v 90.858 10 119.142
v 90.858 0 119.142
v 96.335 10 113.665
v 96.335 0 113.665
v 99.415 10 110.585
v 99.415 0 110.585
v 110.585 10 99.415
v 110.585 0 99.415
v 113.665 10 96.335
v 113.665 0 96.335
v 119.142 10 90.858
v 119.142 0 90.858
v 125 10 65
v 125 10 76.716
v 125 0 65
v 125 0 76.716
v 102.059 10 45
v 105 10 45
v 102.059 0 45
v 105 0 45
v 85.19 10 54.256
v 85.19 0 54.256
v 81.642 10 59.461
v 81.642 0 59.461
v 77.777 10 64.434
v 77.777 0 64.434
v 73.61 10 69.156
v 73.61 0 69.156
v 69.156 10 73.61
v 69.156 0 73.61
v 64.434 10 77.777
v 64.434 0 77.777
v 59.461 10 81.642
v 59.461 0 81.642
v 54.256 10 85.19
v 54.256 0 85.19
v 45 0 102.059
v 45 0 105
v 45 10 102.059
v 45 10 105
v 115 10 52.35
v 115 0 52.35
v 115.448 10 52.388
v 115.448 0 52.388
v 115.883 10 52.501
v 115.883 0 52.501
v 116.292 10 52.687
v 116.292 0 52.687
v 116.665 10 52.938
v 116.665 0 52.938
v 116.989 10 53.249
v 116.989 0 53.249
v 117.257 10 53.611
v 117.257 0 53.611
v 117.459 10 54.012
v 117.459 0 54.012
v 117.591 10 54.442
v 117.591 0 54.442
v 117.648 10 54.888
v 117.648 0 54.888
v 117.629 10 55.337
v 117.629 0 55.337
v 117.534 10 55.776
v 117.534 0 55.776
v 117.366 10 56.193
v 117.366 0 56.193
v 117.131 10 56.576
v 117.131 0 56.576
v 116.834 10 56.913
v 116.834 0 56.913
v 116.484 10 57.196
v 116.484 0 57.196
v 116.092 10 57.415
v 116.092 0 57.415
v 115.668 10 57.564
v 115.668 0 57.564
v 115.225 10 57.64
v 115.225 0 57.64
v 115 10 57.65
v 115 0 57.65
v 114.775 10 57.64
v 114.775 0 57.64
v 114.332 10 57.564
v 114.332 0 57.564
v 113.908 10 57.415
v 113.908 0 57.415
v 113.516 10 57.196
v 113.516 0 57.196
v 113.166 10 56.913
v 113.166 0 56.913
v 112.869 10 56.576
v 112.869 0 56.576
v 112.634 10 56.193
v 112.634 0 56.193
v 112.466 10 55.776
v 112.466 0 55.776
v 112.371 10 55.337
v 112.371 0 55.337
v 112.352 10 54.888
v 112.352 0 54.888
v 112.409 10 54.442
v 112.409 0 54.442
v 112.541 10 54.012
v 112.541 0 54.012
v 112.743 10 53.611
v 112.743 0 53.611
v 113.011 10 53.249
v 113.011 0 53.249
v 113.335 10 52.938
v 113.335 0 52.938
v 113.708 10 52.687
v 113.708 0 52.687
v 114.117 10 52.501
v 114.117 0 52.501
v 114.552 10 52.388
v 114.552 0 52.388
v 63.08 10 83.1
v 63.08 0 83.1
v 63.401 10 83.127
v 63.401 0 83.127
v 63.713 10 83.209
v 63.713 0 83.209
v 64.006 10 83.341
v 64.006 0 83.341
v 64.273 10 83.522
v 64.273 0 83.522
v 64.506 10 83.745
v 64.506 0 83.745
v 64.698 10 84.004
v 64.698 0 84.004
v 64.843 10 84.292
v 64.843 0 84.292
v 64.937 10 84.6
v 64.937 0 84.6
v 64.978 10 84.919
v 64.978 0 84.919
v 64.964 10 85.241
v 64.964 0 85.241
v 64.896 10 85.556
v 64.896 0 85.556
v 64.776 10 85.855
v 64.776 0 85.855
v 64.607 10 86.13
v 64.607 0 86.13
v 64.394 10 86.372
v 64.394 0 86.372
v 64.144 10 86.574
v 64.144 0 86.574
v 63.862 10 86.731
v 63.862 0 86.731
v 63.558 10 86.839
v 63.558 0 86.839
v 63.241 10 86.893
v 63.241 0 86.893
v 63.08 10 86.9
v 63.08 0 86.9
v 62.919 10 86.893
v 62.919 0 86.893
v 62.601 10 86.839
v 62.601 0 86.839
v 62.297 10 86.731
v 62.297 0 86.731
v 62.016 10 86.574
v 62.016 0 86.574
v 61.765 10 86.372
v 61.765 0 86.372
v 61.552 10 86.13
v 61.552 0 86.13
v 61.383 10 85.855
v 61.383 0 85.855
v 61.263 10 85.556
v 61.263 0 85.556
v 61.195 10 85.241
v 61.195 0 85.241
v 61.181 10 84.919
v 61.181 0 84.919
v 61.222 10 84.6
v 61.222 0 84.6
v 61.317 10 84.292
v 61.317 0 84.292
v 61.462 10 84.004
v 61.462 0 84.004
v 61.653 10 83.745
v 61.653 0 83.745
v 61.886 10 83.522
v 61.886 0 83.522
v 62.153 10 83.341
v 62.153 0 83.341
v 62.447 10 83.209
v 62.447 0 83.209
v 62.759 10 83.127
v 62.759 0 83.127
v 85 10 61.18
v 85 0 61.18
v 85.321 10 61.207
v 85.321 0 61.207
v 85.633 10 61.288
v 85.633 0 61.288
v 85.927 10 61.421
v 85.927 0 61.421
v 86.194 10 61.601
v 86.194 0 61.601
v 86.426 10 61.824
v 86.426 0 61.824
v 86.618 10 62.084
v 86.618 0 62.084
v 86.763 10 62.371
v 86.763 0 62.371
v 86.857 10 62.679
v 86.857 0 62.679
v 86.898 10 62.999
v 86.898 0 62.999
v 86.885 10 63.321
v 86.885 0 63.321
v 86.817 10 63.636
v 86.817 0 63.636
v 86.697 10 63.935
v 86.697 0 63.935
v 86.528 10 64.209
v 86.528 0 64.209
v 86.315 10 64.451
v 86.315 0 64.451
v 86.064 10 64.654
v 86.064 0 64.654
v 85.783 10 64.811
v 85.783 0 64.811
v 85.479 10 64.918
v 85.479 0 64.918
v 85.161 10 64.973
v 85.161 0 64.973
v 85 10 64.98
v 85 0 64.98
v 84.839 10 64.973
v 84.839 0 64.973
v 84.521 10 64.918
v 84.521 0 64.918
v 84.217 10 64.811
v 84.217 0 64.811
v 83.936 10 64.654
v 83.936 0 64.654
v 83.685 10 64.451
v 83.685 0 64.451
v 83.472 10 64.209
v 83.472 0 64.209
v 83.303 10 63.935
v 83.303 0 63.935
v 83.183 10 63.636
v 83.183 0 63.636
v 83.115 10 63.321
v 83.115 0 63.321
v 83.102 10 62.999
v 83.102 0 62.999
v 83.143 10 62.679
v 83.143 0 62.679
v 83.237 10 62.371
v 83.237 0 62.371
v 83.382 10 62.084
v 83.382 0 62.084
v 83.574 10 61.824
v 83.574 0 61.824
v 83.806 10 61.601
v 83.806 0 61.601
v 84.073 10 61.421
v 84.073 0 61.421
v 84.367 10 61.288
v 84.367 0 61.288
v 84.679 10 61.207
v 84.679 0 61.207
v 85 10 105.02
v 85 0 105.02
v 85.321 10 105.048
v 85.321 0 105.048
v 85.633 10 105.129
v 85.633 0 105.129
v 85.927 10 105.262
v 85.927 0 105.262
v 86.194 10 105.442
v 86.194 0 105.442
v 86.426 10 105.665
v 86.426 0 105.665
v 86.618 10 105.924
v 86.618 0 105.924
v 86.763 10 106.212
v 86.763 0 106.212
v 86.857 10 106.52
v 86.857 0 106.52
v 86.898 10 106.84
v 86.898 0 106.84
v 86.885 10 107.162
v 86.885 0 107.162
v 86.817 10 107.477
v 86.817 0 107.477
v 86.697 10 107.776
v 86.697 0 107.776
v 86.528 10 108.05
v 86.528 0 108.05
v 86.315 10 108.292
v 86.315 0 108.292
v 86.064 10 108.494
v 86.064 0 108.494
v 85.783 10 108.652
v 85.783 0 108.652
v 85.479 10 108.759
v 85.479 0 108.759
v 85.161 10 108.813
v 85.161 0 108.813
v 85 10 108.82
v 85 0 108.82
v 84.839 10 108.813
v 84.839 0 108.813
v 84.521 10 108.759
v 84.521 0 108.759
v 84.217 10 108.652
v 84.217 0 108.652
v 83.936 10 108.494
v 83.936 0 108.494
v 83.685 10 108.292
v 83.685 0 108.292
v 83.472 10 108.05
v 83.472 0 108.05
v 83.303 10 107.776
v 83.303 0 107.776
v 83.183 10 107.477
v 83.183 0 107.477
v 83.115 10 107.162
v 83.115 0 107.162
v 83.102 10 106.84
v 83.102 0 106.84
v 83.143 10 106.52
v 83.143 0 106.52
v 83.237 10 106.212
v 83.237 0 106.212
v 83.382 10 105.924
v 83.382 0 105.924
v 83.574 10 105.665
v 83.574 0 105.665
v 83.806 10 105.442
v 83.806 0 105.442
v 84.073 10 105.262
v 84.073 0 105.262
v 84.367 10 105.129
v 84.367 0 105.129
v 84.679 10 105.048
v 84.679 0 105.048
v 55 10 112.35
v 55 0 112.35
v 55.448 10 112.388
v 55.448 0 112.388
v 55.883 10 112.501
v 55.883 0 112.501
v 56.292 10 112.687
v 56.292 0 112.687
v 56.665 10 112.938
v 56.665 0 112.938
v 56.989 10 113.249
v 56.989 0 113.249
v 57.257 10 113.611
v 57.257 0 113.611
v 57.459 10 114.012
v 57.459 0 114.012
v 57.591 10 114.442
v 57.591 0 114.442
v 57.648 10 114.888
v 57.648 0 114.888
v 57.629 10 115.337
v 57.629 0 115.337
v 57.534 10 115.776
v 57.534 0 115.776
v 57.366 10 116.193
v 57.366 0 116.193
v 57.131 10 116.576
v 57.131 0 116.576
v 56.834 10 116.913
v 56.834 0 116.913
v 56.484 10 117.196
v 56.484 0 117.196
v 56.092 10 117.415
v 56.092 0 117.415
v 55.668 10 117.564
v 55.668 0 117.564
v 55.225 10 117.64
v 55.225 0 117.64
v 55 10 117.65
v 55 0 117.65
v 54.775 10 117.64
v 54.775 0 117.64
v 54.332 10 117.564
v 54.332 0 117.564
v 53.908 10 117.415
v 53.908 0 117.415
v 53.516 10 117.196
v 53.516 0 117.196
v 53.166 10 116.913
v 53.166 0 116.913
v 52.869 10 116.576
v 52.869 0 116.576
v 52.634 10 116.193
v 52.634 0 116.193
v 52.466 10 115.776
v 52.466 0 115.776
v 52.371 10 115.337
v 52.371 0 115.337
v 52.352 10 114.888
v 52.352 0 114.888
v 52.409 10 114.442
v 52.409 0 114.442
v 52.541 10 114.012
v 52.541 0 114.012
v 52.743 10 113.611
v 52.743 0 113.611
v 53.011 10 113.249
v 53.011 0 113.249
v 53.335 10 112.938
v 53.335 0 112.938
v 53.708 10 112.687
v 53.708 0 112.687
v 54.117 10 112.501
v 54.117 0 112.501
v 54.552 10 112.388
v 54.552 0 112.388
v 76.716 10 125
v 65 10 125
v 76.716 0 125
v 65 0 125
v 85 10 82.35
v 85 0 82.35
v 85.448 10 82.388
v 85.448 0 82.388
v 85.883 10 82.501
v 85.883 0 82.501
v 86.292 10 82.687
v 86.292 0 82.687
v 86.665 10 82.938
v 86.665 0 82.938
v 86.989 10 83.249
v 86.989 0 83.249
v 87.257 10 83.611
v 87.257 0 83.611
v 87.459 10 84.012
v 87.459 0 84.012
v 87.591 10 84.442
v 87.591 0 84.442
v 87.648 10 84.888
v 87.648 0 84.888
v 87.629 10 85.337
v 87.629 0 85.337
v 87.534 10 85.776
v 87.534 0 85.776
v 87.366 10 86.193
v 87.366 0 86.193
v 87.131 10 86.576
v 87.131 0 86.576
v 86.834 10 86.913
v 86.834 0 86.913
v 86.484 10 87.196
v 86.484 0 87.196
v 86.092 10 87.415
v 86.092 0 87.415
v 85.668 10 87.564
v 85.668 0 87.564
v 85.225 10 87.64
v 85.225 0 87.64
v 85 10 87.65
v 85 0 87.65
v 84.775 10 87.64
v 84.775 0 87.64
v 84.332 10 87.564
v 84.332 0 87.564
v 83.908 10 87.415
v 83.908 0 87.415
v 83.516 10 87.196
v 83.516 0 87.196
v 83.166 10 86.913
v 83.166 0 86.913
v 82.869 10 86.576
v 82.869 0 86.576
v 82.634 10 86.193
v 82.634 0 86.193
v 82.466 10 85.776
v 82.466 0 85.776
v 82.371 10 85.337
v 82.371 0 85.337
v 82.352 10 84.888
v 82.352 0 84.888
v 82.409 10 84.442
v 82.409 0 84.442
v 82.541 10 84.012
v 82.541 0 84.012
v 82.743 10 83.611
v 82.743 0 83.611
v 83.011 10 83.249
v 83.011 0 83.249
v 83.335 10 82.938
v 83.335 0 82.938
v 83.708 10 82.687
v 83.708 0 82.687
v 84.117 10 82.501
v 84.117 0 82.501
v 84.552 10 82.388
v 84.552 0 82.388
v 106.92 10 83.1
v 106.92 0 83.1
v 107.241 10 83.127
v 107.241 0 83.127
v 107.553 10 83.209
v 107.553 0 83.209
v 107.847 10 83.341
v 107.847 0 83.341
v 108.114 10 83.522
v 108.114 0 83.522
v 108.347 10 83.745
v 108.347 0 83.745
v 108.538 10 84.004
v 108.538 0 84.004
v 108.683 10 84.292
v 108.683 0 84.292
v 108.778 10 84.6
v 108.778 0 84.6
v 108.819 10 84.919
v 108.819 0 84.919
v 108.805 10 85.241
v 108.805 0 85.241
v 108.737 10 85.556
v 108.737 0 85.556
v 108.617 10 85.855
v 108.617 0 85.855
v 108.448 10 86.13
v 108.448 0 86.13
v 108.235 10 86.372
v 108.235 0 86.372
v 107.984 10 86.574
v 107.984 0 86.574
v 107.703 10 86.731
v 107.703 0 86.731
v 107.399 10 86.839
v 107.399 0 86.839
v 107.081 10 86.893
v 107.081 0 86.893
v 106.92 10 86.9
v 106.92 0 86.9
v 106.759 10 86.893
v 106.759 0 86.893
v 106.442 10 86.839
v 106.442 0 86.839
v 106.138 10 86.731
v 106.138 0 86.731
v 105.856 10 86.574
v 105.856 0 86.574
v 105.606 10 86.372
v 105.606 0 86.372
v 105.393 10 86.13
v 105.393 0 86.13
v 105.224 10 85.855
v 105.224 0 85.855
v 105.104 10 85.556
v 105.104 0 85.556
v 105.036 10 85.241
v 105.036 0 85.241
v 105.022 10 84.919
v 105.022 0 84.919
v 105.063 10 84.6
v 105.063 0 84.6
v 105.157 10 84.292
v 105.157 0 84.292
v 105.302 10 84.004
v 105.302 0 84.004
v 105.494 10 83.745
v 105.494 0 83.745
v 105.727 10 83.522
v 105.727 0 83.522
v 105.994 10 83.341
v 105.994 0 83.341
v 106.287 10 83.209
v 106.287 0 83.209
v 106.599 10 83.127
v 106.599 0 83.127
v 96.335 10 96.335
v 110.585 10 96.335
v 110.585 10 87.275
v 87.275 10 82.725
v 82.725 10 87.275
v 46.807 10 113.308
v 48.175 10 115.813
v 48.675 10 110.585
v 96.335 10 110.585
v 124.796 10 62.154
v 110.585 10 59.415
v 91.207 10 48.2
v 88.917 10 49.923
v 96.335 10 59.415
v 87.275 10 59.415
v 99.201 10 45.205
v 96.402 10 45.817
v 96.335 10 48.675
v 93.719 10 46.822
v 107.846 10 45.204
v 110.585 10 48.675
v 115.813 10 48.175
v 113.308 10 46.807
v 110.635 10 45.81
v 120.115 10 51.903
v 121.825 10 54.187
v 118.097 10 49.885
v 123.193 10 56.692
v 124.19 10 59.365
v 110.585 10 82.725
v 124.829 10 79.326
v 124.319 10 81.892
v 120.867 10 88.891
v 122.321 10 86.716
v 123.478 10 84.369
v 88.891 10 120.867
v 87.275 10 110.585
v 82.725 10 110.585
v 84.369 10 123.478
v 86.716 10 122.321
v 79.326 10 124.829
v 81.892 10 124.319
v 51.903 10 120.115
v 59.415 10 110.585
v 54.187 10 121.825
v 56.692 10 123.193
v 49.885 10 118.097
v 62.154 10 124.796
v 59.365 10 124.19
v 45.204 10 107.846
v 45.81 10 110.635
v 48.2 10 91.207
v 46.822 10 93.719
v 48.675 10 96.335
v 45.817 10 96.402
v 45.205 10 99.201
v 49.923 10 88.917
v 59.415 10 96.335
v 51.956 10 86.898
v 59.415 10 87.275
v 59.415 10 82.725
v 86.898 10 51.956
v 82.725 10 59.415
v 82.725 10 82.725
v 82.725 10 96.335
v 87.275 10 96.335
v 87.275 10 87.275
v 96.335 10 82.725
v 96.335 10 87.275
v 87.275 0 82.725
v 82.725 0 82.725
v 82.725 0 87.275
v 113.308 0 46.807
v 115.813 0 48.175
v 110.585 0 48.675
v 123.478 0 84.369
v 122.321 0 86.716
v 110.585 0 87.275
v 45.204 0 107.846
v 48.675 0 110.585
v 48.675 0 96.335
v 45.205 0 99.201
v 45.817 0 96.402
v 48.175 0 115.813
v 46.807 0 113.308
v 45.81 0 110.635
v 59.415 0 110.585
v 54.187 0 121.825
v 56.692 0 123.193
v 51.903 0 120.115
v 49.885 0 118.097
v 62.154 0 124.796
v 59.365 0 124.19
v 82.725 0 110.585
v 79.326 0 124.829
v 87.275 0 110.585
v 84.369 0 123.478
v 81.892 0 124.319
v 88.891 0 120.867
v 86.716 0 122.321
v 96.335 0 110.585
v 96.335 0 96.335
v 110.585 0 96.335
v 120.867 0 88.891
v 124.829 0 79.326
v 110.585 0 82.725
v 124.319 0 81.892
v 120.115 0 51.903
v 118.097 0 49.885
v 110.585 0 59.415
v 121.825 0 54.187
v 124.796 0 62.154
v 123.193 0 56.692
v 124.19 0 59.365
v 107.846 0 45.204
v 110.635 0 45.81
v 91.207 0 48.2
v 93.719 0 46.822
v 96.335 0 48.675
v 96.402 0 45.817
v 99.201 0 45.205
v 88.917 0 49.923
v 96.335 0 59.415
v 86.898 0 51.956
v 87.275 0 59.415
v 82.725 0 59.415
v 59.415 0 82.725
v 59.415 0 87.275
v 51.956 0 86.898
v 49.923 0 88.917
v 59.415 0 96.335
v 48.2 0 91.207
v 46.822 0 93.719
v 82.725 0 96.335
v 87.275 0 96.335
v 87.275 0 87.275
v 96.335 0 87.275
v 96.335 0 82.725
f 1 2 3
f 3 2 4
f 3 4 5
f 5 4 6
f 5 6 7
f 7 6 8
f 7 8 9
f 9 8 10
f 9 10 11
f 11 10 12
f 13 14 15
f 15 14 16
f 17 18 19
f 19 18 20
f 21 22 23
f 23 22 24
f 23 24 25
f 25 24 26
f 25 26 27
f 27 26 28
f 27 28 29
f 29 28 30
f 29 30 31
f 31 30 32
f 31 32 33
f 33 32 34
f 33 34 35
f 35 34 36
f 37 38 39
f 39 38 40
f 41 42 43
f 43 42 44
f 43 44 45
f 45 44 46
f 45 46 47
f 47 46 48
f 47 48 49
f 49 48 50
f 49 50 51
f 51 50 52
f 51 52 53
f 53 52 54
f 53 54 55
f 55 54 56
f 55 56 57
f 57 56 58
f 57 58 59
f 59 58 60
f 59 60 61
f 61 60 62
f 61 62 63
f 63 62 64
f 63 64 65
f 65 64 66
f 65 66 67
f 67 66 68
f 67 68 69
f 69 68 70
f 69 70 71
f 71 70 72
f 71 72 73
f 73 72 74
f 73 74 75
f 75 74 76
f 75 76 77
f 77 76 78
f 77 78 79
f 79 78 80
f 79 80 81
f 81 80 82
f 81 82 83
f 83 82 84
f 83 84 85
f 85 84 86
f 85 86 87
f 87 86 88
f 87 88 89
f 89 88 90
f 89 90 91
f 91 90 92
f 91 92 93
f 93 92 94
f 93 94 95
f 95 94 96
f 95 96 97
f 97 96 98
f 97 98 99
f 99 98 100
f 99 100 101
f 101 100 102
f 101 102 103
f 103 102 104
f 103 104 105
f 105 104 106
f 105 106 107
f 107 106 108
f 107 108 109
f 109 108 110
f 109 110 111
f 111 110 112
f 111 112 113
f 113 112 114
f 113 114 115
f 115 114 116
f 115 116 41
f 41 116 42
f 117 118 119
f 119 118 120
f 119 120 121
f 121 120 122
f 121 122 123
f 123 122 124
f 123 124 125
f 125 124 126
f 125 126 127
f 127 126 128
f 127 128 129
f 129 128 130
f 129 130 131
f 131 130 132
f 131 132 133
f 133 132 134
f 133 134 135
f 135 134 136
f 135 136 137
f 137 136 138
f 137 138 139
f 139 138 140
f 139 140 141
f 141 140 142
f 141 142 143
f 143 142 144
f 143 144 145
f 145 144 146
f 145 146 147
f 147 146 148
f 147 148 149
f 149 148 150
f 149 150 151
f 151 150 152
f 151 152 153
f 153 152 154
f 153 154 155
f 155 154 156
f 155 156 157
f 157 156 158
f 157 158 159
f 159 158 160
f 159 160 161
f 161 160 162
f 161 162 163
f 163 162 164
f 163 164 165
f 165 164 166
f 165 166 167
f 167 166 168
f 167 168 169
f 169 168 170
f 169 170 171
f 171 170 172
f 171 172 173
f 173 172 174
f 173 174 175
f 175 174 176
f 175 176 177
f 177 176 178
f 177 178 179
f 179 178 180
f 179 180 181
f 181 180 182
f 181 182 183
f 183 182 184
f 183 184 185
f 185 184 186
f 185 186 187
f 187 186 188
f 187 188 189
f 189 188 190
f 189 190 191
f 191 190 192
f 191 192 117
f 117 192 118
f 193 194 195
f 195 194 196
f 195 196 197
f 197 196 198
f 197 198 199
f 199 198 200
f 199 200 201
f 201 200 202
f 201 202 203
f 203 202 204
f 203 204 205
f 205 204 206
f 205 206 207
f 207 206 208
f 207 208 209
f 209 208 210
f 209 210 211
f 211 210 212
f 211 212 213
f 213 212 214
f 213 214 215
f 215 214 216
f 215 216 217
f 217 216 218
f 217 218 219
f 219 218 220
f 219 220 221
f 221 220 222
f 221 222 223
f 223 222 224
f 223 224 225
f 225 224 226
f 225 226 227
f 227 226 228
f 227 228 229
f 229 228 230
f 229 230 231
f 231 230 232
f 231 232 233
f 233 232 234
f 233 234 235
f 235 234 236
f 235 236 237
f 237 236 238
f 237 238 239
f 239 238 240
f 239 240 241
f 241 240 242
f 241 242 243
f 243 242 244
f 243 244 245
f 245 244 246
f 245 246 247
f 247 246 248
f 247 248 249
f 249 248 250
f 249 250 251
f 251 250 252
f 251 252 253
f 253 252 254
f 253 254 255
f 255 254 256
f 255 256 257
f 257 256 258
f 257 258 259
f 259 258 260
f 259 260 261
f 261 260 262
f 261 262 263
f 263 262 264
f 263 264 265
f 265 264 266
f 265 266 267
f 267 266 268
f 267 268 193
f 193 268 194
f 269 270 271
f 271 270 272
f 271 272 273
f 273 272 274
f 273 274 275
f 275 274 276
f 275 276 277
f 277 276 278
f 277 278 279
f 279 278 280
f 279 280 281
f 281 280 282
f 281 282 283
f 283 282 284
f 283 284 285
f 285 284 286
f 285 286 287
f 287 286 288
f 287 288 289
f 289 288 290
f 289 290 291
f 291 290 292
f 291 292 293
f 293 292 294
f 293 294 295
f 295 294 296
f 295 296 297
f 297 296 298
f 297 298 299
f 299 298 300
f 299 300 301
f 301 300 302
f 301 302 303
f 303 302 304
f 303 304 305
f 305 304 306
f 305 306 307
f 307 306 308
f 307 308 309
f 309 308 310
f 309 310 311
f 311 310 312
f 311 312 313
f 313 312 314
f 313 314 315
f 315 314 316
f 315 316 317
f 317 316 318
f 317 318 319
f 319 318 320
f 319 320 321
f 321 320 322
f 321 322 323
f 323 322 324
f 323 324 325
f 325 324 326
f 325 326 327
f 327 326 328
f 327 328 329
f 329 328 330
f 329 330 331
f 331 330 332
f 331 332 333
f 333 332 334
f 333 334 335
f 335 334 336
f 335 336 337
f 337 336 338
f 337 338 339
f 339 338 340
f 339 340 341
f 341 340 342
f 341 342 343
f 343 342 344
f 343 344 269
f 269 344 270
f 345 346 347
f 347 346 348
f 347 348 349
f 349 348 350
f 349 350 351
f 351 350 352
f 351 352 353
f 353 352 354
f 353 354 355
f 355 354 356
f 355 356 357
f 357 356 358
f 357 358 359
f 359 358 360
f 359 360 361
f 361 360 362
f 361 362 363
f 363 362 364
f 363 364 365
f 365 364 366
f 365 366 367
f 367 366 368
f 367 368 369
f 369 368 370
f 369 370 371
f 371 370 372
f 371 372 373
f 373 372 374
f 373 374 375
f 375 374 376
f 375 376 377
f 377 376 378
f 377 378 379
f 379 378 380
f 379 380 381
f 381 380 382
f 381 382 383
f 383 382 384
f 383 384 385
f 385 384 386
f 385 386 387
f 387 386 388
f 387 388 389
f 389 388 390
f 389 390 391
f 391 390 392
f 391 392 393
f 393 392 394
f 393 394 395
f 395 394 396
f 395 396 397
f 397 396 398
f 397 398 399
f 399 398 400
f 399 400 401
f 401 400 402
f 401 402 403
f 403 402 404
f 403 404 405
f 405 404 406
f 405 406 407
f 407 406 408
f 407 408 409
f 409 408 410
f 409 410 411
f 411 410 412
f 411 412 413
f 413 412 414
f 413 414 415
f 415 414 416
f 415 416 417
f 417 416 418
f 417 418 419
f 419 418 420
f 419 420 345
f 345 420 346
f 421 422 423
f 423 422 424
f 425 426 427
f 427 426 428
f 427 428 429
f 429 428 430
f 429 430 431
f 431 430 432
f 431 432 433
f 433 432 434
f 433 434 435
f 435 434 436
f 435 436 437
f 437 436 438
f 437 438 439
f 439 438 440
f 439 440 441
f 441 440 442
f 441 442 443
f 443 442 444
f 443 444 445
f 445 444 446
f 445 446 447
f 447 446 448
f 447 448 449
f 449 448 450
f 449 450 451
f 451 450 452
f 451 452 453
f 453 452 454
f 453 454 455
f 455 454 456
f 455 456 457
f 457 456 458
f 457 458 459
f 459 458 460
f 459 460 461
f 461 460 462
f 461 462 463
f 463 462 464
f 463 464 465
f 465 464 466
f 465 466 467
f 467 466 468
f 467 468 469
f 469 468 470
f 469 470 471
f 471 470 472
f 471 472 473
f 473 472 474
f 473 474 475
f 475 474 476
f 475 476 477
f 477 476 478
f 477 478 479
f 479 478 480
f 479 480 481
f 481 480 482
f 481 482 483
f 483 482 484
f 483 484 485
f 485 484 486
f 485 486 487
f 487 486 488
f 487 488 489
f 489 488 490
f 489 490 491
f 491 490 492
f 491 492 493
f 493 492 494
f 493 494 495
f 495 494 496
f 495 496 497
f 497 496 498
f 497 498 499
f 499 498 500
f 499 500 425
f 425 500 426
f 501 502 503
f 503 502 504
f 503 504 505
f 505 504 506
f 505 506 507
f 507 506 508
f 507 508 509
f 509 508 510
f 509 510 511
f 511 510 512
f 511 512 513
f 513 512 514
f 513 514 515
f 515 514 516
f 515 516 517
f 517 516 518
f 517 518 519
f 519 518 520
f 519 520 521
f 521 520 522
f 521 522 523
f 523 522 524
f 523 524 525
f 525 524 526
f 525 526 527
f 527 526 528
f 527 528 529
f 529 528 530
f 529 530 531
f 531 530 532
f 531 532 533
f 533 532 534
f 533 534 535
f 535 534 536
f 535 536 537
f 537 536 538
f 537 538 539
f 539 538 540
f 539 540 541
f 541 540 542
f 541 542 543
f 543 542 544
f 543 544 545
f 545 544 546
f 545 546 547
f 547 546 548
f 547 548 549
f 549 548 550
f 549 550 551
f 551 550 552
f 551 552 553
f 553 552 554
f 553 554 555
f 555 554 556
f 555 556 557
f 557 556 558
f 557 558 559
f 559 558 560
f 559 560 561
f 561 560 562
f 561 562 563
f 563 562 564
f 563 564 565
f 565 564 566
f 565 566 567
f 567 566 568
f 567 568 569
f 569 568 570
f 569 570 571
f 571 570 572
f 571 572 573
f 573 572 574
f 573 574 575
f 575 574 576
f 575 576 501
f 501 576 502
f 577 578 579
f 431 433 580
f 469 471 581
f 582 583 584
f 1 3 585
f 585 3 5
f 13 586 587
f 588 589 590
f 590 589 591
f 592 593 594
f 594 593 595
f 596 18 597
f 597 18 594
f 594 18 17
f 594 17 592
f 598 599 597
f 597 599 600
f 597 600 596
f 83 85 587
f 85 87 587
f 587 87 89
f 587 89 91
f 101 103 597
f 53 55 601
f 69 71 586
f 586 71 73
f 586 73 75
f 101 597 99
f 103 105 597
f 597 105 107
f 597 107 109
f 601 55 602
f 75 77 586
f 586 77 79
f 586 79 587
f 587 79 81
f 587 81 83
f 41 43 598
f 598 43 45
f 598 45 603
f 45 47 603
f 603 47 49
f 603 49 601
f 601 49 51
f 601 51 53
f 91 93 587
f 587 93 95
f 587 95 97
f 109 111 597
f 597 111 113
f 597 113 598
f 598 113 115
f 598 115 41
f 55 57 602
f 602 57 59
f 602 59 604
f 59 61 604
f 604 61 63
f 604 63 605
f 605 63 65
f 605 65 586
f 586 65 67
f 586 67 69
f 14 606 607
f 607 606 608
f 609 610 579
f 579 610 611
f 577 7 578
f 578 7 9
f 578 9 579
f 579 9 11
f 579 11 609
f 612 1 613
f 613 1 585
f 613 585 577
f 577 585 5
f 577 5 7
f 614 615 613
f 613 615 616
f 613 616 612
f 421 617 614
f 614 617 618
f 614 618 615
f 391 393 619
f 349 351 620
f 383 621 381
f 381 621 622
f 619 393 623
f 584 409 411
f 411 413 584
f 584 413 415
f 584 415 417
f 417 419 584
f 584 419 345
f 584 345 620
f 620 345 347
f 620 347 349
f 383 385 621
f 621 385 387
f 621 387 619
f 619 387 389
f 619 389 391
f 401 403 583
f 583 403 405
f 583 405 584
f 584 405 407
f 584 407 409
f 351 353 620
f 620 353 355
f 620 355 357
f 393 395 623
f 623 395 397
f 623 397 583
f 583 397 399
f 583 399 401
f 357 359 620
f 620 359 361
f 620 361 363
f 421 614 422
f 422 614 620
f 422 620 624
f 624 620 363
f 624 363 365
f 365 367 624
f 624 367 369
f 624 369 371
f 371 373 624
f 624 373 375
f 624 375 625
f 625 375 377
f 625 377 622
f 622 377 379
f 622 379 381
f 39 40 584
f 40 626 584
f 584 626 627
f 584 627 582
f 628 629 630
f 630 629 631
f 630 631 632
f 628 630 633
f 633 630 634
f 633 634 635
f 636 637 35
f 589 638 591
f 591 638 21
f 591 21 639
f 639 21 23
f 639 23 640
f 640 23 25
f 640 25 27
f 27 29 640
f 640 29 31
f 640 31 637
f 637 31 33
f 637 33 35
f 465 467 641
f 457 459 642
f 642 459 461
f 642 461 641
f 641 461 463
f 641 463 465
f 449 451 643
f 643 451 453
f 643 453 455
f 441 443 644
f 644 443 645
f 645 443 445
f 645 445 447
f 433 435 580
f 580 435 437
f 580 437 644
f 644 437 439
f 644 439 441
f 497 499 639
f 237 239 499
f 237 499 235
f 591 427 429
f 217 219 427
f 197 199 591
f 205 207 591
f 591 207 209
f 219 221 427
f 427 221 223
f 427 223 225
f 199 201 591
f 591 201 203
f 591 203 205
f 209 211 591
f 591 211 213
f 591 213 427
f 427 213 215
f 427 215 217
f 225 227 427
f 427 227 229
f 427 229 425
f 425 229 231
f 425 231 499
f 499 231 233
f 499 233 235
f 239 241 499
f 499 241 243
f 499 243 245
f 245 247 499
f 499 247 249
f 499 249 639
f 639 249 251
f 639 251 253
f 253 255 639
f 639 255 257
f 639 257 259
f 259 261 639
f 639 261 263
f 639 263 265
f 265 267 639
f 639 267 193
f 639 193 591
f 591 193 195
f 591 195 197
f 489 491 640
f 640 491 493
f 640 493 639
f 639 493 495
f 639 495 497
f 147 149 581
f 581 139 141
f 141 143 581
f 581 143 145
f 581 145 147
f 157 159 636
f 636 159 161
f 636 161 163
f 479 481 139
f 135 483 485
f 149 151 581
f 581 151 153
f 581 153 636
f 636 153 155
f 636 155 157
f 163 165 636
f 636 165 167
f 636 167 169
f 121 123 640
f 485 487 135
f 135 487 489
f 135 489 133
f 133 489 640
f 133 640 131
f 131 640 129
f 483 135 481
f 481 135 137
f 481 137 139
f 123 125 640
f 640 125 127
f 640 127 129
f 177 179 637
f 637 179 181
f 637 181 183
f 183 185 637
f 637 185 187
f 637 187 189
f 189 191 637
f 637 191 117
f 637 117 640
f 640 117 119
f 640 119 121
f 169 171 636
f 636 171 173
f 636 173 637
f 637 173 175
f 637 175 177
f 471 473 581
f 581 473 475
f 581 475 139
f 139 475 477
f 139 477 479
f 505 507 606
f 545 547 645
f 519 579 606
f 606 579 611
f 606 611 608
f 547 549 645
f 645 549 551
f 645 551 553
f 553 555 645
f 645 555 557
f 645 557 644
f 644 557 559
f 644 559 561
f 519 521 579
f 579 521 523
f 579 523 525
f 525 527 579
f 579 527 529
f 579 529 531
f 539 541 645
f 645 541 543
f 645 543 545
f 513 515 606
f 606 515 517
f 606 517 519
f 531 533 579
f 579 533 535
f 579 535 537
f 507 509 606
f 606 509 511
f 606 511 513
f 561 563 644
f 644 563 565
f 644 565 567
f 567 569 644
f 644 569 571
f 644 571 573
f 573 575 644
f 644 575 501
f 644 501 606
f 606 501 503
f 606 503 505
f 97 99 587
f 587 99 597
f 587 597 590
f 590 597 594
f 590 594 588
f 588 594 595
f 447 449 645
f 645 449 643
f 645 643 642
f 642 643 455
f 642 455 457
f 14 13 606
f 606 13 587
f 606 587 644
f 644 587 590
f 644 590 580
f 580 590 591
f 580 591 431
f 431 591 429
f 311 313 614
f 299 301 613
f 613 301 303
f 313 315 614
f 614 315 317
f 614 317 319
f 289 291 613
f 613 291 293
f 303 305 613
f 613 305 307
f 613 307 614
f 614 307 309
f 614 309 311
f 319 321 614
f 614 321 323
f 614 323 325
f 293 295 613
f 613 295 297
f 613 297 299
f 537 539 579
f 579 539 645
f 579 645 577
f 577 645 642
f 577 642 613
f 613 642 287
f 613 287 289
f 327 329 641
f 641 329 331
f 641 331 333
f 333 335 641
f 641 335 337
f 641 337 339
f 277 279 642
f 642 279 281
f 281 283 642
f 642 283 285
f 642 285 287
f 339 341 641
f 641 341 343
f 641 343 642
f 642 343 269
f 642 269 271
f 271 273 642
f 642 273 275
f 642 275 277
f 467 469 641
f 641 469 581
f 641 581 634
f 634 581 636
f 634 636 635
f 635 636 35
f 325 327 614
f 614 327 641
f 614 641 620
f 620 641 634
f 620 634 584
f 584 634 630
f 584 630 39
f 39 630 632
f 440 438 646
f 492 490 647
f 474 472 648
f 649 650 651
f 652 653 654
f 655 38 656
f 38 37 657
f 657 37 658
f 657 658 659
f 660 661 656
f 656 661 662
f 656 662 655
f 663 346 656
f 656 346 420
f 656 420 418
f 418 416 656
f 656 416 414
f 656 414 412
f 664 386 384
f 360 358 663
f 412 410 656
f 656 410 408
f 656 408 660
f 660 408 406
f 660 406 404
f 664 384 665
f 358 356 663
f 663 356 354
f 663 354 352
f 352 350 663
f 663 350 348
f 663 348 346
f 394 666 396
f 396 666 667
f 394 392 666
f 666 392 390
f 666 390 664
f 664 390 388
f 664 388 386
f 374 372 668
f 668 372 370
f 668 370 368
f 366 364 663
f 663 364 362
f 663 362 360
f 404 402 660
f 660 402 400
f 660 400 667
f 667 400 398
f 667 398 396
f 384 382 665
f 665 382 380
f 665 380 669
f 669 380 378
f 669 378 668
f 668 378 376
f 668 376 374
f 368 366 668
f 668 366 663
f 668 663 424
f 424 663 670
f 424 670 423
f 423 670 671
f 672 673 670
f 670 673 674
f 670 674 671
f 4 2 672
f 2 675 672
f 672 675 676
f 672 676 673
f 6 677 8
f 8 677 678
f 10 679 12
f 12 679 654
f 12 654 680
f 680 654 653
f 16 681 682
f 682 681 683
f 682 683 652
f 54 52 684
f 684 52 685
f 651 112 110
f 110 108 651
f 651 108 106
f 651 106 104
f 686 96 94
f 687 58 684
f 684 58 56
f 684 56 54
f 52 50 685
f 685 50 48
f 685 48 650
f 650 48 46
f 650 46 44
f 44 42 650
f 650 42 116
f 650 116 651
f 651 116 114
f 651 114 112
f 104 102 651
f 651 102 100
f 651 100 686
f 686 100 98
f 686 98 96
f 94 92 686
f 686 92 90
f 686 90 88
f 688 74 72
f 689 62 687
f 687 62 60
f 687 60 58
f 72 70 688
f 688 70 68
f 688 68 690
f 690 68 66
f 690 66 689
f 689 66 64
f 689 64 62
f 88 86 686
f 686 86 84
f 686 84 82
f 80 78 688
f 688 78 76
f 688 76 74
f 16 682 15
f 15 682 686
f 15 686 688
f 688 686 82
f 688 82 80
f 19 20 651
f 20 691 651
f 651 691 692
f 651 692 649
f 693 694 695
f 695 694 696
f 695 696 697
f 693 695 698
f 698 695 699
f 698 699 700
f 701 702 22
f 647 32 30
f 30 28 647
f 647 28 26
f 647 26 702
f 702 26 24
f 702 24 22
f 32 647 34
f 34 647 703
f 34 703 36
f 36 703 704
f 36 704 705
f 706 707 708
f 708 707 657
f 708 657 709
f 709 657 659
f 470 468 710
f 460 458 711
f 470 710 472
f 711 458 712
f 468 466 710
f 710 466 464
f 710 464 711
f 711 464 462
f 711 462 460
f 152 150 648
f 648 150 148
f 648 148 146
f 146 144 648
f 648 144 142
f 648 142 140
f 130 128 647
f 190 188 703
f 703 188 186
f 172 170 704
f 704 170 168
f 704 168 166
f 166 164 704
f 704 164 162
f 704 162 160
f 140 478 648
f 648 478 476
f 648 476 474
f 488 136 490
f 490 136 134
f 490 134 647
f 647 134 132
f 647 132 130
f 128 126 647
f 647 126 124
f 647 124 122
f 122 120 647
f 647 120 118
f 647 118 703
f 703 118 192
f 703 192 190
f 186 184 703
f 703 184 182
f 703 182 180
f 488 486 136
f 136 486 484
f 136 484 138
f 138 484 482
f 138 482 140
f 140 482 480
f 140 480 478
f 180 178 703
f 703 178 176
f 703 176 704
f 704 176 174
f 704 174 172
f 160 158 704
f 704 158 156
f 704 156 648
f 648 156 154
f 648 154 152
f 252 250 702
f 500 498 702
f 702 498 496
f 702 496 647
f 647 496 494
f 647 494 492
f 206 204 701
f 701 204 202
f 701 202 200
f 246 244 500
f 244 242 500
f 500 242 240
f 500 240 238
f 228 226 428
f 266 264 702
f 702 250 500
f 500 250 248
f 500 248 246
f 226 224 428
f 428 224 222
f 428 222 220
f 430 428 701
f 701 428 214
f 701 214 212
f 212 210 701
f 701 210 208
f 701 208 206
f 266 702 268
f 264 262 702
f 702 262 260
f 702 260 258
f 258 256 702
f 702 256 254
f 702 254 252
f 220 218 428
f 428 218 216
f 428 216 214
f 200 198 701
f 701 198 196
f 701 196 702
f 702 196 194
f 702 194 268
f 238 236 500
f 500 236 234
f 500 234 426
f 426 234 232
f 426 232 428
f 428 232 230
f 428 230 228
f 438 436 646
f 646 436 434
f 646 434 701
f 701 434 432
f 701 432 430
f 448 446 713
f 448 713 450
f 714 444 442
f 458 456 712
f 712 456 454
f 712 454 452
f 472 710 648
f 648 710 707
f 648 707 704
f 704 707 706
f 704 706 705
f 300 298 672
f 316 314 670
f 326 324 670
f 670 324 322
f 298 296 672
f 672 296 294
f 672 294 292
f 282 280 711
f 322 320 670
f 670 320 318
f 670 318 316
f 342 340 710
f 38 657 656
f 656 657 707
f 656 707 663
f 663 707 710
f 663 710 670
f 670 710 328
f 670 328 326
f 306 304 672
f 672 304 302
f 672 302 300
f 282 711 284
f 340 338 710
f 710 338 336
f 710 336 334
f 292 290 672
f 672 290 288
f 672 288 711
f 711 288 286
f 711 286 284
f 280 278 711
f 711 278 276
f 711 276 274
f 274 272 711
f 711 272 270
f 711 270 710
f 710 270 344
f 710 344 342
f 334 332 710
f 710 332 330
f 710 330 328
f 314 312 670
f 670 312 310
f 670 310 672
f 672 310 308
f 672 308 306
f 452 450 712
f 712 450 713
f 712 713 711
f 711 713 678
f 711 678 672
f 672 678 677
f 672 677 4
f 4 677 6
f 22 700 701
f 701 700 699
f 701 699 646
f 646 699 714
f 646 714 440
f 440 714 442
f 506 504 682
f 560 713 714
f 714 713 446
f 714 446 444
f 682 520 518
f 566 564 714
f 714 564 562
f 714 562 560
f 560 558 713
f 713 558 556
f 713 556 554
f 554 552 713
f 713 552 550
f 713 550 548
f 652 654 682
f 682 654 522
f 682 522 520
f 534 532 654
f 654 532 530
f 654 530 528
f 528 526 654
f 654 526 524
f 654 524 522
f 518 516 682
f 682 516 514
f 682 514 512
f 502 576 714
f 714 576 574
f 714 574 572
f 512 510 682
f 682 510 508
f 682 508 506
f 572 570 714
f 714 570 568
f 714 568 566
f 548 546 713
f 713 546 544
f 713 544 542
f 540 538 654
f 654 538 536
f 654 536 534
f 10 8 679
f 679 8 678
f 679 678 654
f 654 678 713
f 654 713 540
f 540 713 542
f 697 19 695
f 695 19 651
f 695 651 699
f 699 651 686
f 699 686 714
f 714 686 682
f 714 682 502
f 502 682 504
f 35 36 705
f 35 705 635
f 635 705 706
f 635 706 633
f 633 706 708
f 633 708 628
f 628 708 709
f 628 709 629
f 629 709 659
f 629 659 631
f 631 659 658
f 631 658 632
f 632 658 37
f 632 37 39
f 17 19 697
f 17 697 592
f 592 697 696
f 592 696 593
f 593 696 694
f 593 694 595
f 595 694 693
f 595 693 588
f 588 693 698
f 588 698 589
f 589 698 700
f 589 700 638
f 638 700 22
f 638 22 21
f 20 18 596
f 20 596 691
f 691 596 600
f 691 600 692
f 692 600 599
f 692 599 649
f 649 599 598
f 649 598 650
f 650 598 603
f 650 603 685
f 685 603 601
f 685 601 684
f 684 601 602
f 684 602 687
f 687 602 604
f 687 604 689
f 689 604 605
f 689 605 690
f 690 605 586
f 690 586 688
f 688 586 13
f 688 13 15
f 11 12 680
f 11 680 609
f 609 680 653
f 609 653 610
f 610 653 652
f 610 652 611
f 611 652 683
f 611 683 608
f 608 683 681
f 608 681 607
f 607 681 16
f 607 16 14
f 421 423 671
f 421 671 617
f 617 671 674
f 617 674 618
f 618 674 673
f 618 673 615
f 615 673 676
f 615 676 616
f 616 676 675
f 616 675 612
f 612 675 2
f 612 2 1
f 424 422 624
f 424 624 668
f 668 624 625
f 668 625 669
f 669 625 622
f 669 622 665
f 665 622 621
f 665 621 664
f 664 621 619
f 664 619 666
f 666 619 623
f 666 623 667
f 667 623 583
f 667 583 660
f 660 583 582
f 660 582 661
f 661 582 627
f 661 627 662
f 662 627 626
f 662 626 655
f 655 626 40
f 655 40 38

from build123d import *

# Parameters (mm, degrees)
EXTRUDE_4_OUTLINE_R   = 2.65
EXTRUDE_4_OUTLINE_R_2 = 1.9
EXTRUDE_4_DEPTH       = 10
FILLET_2_R            = 20


# Read off the part's stored shape, not the designer's step: 凸台-拉伸4
with BuildPart() as part:
    # 凸台-拉伸4 outline → 凸台-拉伸4 (new body)
    with BuildSketch(Plane(origin=(0, 0, 0), x_dir=(1, 0, 0), z_dir=(0, 1, 0))):
        with BuildLine():
            Line((85, -125), (125, -85))
            Line((125, -85), (125, -45))
            Line((125, -45), (90.421236444, -45))
            ThreePointArc((90.421236444, -45), (71.4177849, -71.4177849), (45, -90.421236444))
            Line((45, -90.421236444), (45, -125))
            Line((45, -125), (85, -125))
        make_face()
        with Locations((55, -115)):
            Circle(EXTRUDE_4_OUTLINE_R, mode=Mode.SUBTRACT)
        with Locations((85, -106.920310217)):
            Circle(EXTRUDE_4_OUTLINE_R_2, mode=Mode.SUBTRACT)
        with Locations((63.079689783, -85)):
            Circle(EXTRUDE_4_OUTLINE_R_2, mode=Mode.SUBTRACT)
        with Locations((85, -85)):
            Circle(EXTRUDE_4_OUTLINE_R, mode=Mode.SUBTRACT)
        with Locations((106.920310217, -85)):
            Circle(EXTRUDE_4_OUTLINE_R_2, mode=Mode.SUBTRACT)
        with Locations((85, -63.079689783)):
            Circle(EXTRUDE_4_OUTLINE_R_2, mode=Mode.SUBTRACT)
        with Locations((115, -55)):
            Circle(EXTRUDE_4_OUTLINE_R, mode=Mode.SUBTRACT)
    extrude(amount=EXTRUDE_4_DEPTH)

    # 圆角2
    fillet_2_edges = [part.edges().sort_by_distance(p)[0] for p in [
        (85, 5, 125),
        (45, 5, 125),
        (45, 5, 90.421236444),
        (90.421236444, 5, 45),
        (125, 5, 45),
        (125, 5, 85),
    ]]
    fillet(fillet_2_edges, radius=FILLET_2_R)


solid = part.part
